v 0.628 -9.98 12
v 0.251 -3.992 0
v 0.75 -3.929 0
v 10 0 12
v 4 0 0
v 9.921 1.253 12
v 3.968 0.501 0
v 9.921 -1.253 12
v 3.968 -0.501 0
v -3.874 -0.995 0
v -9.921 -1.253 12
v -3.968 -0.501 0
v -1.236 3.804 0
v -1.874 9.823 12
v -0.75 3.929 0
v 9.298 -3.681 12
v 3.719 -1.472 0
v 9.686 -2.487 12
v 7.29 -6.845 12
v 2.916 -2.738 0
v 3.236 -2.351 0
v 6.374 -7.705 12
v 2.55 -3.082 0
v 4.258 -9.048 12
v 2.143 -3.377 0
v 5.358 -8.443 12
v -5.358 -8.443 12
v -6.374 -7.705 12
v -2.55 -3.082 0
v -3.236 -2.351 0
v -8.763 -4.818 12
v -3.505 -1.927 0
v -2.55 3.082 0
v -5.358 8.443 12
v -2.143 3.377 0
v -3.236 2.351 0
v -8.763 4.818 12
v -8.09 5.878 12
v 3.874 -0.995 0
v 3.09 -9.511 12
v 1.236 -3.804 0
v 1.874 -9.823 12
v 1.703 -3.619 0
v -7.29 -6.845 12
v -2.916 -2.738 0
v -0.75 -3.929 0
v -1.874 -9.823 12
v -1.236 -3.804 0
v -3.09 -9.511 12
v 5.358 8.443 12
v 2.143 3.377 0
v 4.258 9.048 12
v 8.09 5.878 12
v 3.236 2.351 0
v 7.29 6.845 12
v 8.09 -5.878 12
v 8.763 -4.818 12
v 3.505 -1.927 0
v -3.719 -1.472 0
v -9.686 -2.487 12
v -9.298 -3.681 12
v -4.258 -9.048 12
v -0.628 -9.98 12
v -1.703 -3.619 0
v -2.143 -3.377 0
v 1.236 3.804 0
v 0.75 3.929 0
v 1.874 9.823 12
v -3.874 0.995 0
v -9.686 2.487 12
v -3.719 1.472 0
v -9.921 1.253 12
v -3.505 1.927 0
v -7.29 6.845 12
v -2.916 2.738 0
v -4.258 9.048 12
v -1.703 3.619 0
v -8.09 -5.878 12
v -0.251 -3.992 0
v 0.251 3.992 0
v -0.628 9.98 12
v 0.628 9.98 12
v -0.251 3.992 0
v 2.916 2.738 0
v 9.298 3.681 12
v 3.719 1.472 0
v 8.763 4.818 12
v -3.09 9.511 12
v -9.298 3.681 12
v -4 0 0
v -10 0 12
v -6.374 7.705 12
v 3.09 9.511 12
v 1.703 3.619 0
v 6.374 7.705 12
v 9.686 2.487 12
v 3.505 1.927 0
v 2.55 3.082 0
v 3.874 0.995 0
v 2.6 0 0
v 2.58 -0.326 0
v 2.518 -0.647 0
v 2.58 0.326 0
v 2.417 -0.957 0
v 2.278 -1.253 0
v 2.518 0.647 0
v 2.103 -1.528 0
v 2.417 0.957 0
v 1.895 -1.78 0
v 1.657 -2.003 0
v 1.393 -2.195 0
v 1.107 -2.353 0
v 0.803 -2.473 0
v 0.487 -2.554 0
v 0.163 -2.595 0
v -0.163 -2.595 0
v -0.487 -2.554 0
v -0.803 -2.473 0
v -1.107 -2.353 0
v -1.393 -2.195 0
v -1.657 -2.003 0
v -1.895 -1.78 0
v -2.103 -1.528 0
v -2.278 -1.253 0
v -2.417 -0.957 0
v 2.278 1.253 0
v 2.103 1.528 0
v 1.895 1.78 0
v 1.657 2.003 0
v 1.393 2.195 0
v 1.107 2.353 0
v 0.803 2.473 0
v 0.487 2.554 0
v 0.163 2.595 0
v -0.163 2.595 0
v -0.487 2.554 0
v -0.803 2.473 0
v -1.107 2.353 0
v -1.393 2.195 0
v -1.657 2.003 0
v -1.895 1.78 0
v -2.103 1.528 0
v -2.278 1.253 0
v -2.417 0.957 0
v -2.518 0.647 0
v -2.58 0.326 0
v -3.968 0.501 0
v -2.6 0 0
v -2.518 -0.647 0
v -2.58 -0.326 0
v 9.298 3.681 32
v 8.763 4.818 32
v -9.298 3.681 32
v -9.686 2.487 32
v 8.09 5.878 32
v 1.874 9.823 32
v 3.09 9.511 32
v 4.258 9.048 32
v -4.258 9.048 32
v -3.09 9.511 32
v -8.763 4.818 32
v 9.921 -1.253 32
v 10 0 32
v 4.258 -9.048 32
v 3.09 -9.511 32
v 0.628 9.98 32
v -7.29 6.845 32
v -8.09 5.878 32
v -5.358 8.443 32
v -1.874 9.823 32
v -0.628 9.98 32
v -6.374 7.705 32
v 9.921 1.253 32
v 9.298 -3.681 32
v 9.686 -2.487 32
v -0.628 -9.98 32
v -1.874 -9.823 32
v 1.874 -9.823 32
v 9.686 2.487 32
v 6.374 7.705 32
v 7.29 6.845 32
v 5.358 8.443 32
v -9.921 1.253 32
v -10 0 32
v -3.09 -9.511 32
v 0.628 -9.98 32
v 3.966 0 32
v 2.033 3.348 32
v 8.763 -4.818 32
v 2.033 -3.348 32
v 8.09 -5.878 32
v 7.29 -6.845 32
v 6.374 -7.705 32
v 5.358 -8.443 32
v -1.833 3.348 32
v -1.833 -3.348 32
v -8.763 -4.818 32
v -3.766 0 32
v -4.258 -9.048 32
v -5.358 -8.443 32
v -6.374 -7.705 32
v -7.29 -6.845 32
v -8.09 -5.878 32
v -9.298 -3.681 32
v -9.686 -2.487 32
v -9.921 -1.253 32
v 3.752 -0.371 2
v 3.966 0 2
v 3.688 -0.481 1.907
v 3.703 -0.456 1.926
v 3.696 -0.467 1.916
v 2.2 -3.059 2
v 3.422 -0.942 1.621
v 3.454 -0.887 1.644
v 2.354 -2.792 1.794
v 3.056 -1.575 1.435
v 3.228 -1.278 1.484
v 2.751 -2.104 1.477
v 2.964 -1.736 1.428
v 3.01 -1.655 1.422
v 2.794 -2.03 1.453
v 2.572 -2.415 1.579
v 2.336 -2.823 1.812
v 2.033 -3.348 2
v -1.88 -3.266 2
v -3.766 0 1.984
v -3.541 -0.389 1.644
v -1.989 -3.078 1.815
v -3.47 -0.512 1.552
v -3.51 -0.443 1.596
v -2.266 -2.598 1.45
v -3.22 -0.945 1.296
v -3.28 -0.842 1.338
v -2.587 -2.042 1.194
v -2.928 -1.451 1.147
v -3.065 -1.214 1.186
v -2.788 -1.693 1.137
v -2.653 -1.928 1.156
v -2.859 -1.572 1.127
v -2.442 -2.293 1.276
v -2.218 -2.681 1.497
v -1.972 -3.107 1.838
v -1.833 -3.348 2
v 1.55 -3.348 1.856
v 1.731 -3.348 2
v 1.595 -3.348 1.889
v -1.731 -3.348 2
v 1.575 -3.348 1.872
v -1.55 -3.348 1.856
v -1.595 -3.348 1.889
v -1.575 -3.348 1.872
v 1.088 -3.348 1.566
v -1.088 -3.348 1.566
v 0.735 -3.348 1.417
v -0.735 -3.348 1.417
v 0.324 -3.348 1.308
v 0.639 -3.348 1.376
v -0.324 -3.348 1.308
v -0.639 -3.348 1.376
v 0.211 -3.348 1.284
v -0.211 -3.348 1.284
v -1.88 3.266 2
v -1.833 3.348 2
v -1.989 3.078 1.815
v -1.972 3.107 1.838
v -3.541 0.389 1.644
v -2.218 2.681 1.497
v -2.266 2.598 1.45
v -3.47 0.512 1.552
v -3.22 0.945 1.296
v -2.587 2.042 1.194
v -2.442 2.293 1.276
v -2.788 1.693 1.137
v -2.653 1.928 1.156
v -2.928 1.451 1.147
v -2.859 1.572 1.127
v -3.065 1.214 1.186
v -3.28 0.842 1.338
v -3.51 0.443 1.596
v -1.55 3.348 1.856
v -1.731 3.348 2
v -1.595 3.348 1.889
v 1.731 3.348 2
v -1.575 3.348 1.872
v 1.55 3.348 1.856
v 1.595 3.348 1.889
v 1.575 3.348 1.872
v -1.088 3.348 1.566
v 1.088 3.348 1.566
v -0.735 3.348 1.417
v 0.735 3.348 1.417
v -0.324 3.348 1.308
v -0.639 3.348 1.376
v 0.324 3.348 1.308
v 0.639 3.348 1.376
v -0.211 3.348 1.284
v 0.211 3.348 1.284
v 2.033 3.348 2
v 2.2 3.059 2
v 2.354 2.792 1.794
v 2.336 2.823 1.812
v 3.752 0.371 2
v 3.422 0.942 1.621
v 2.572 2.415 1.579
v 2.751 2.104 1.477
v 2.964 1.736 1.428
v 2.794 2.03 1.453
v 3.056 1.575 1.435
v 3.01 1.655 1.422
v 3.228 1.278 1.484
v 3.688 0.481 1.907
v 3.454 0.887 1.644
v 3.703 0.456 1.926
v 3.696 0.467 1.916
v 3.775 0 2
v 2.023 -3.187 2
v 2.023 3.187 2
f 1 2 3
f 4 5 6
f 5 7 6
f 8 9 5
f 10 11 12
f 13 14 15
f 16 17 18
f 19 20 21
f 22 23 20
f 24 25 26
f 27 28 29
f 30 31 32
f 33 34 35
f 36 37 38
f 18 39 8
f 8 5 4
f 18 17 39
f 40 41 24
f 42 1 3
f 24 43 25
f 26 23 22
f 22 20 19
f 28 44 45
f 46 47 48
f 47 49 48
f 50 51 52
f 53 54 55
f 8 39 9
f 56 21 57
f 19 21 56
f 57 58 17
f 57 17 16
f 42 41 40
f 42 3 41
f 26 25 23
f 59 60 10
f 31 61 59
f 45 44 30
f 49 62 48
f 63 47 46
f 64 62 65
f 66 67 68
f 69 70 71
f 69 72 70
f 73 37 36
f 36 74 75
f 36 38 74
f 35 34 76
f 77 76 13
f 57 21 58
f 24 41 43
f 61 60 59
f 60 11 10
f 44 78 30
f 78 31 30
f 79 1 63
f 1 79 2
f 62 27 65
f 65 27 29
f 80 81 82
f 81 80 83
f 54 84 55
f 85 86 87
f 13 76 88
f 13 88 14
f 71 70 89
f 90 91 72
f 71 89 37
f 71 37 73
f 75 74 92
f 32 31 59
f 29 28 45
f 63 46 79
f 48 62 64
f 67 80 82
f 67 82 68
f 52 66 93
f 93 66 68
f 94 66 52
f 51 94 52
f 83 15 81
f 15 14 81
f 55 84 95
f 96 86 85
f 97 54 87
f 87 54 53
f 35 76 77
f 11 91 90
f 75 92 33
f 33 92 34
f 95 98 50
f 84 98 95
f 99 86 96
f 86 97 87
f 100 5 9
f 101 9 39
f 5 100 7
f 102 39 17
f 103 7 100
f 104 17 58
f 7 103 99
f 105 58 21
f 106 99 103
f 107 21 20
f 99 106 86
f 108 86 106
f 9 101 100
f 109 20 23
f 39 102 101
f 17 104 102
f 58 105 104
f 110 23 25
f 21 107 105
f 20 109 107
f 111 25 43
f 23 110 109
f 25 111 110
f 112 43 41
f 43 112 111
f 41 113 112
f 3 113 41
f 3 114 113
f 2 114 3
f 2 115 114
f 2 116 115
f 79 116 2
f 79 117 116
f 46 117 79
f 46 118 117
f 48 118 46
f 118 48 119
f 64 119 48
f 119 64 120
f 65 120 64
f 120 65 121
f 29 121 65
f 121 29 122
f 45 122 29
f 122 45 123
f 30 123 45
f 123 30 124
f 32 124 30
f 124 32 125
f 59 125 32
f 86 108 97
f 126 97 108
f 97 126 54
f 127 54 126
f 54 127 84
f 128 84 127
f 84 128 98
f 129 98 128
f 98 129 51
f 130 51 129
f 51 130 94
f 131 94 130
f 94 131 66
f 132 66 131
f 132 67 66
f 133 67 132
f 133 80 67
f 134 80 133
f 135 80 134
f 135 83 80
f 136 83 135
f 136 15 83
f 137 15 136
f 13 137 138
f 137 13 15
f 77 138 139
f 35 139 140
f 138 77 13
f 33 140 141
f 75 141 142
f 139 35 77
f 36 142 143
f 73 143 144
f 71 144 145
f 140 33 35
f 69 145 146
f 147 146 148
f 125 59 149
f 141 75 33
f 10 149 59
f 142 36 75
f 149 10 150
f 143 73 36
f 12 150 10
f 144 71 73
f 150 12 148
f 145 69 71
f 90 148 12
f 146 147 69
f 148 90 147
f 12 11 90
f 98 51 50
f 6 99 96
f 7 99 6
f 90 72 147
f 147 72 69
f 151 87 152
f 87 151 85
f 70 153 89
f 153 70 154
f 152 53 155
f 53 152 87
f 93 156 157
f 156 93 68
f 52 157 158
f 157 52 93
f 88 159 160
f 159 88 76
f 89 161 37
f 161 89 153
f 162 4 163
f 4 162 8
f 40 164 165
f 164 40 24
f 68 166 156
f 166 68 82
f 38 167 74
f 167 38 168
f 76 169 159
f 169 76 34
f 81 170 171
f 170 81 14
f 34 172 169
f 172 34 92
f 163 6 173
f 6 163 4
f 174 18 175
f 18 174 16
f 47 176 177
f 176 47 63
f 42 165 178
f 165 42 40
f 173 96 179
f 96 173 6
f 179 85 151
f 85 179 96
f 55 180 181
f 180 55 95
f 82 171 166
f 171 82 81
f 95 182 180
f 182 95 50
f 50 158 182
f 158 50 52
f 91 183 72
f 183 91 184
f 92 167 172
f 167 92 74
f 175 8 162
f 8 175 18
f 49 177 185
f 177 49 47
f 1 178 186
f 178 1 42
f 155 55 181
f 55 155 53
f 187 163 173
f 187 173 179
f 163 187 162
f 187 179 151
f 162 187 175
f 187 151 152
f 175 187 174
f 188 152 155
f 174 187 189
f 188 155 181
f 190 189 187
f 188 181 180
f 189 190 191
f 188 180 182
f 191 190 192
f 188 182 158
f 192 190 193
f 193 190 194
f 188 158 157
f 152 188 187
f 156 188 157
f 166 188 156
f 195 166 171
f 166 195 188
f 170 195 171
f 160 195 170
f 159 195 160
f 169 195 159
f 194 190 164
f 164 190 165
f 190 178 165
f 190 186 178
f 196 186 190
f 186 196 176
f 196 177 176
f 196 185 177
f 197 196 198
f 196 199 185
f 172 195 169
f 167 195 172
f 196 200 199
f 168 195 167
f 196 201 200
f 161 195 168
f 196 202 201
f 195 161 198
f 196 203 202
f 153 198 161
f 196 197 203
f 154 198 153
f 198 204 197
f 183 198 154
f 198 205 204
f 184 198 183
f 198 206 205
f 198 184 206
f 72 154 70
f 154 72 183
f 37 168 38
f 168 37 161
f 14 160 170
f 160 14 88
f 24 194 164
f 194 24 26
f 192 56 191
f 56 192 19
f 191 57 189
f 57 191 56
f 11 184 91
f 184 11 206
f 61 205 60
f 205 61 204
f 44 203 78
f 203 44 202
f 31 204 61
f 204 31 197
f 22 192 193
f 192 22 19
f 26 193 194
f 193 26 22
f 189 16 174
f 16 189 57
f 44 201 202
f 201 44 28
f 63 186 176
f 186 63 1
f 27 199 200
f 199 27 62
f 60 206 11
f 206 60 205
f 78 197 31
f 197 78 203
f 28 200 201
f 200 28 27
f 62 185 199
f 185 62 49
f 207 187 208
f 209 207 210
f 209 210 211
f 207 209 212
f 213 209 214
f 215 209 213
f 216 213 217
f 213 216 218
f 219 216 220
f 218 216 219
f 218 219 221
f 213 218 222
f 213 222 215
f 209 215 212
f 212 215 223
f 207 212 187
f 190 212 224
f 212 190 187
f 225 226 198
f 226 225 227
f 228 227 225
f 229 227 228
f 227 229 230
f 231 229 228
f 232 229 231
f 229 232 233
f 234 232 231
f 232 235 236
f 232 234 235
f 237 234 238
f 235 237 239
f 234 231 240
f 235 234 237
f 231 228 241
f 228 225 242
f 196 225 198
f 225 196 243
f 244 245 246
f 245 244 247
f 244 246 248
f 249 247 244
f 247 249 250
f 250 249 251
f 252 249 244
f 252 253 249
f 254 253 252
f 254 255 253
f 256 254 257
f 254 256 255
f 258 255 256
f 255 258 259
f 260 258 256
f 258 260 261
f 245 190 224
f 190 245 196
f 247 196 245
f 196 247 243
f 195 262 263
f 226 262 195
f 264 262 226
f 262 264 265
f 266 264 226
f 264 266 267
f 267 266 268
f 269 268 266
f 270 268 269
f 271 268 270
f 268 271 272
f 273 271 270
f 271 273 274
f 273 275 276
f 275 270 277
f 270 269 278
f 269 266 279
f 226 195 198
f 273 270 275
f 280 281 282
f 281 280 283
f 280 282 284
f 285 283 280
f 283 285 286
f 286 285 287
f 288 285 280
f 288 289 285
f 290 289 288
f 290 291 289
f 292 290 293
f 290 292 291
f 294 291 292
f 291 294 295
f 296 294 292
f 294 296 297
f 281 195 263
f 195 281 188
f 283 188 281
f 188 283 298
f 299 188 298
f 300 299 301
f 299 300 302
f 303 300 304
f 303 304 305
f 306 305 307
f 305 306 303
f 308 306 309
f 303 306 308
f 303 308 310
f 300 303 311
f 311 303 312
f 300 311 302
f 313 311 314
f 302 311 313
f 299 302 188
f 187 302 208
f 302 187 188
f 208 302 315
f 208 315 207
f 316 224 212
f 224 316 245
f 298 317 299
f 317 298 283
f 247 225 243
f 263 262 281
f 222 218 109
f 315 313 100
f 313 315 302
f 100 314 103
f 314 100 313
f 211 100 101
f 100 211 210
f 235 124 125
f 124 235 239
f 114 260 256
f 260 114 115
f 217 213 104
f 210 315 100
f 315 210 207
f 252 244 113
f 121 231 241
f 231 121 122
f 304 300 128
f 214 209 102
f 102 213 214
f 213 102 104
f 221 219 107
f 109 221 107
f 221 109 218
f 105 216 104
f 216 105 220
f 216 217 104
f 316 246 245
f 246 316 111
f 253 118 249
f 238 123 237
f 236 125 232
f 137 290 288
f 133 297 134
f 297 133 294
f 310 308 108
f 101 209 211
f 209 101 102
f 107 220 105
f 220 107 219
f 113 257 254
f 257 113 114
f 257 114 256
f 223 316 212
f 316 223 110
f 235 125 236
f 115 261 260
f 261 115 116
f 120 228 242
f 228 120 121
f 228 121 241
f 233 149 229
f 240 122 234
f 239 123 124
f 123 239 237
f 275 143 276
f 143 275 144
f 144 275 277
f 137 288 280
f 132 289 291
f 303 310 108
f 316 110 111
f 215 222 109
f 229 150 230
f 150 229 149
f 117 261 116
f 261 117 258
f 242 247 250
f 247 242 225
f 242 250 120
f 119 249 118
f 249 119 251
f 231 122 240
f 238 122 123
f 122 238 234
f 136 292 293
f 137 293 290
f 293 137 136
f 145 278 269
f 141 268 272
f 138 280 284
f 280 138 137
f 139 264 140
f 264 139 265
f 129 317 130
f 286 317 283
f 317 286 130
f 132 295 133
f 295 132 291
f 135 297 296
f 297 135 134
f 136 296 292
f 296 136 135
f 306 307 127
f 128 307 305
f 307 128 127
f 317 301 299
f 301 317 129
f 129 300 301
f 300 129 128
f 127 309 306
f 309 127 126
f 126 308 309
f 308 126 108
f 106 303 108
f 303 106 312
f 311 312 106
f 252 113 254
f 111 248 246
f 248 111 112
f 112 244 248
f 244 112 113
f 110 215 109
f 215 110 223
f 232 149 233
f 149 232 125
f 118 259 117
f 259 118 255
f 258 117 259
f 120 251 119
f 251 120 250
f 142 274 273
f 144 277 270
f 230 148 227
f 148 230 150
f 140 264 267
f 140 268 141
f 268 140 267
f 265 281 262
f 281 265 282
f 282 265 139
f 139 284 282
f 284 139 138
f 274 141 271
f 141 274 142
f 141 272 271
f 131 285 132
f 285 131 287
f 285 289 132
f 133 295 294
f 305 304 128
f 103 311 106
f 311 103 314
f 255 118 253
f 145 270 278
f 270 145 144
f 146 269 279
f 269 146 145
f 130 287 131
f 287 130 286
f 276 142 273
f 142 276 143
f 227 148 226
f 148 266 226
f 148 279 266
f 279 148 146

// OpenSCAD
$fn = 50;


difference() {
	union() {
		cylinder(h = 12, r1 = 4, r2 = 10);
		translate(v = [0, 0, 12.0000000000]) {
			cylinder(h = 20, r = 10);
		}
	}
	union() {
		translate(v = [0, 0, 0]) {
			rotate(a = [0, 0, 0]) {
				difference() {
					union() {
						translate(v = [0.1000000000, 0, 0]) {
							#linear_extrude(height = 228.2000000000) {
								polygon(points = [[3.8658550000, 0.0000000000], [1.9329275000, 3.3479286373], [-1.9329275000, 3.3479286373], [-3.8658550000, 0.0000000000], [-1.9329275000, -3.3479286373], [1.9329275000, -3.3479286373]]);
							}
						}
						#translate(v = [0, 0, -71.8000000000]) {
							cylinder(h = 100, r = 2.6000000000);
						}
					}
					union() {
						difference() {
							#cylinder(h = 2, r1 = 10.6000000000, r2 = 11.7750000000);
							#cylinder(h = 2, r1 = 2.6000000000, r2 = 3.7750000000);
						}
					}
				}
			}
		}
	}
}
